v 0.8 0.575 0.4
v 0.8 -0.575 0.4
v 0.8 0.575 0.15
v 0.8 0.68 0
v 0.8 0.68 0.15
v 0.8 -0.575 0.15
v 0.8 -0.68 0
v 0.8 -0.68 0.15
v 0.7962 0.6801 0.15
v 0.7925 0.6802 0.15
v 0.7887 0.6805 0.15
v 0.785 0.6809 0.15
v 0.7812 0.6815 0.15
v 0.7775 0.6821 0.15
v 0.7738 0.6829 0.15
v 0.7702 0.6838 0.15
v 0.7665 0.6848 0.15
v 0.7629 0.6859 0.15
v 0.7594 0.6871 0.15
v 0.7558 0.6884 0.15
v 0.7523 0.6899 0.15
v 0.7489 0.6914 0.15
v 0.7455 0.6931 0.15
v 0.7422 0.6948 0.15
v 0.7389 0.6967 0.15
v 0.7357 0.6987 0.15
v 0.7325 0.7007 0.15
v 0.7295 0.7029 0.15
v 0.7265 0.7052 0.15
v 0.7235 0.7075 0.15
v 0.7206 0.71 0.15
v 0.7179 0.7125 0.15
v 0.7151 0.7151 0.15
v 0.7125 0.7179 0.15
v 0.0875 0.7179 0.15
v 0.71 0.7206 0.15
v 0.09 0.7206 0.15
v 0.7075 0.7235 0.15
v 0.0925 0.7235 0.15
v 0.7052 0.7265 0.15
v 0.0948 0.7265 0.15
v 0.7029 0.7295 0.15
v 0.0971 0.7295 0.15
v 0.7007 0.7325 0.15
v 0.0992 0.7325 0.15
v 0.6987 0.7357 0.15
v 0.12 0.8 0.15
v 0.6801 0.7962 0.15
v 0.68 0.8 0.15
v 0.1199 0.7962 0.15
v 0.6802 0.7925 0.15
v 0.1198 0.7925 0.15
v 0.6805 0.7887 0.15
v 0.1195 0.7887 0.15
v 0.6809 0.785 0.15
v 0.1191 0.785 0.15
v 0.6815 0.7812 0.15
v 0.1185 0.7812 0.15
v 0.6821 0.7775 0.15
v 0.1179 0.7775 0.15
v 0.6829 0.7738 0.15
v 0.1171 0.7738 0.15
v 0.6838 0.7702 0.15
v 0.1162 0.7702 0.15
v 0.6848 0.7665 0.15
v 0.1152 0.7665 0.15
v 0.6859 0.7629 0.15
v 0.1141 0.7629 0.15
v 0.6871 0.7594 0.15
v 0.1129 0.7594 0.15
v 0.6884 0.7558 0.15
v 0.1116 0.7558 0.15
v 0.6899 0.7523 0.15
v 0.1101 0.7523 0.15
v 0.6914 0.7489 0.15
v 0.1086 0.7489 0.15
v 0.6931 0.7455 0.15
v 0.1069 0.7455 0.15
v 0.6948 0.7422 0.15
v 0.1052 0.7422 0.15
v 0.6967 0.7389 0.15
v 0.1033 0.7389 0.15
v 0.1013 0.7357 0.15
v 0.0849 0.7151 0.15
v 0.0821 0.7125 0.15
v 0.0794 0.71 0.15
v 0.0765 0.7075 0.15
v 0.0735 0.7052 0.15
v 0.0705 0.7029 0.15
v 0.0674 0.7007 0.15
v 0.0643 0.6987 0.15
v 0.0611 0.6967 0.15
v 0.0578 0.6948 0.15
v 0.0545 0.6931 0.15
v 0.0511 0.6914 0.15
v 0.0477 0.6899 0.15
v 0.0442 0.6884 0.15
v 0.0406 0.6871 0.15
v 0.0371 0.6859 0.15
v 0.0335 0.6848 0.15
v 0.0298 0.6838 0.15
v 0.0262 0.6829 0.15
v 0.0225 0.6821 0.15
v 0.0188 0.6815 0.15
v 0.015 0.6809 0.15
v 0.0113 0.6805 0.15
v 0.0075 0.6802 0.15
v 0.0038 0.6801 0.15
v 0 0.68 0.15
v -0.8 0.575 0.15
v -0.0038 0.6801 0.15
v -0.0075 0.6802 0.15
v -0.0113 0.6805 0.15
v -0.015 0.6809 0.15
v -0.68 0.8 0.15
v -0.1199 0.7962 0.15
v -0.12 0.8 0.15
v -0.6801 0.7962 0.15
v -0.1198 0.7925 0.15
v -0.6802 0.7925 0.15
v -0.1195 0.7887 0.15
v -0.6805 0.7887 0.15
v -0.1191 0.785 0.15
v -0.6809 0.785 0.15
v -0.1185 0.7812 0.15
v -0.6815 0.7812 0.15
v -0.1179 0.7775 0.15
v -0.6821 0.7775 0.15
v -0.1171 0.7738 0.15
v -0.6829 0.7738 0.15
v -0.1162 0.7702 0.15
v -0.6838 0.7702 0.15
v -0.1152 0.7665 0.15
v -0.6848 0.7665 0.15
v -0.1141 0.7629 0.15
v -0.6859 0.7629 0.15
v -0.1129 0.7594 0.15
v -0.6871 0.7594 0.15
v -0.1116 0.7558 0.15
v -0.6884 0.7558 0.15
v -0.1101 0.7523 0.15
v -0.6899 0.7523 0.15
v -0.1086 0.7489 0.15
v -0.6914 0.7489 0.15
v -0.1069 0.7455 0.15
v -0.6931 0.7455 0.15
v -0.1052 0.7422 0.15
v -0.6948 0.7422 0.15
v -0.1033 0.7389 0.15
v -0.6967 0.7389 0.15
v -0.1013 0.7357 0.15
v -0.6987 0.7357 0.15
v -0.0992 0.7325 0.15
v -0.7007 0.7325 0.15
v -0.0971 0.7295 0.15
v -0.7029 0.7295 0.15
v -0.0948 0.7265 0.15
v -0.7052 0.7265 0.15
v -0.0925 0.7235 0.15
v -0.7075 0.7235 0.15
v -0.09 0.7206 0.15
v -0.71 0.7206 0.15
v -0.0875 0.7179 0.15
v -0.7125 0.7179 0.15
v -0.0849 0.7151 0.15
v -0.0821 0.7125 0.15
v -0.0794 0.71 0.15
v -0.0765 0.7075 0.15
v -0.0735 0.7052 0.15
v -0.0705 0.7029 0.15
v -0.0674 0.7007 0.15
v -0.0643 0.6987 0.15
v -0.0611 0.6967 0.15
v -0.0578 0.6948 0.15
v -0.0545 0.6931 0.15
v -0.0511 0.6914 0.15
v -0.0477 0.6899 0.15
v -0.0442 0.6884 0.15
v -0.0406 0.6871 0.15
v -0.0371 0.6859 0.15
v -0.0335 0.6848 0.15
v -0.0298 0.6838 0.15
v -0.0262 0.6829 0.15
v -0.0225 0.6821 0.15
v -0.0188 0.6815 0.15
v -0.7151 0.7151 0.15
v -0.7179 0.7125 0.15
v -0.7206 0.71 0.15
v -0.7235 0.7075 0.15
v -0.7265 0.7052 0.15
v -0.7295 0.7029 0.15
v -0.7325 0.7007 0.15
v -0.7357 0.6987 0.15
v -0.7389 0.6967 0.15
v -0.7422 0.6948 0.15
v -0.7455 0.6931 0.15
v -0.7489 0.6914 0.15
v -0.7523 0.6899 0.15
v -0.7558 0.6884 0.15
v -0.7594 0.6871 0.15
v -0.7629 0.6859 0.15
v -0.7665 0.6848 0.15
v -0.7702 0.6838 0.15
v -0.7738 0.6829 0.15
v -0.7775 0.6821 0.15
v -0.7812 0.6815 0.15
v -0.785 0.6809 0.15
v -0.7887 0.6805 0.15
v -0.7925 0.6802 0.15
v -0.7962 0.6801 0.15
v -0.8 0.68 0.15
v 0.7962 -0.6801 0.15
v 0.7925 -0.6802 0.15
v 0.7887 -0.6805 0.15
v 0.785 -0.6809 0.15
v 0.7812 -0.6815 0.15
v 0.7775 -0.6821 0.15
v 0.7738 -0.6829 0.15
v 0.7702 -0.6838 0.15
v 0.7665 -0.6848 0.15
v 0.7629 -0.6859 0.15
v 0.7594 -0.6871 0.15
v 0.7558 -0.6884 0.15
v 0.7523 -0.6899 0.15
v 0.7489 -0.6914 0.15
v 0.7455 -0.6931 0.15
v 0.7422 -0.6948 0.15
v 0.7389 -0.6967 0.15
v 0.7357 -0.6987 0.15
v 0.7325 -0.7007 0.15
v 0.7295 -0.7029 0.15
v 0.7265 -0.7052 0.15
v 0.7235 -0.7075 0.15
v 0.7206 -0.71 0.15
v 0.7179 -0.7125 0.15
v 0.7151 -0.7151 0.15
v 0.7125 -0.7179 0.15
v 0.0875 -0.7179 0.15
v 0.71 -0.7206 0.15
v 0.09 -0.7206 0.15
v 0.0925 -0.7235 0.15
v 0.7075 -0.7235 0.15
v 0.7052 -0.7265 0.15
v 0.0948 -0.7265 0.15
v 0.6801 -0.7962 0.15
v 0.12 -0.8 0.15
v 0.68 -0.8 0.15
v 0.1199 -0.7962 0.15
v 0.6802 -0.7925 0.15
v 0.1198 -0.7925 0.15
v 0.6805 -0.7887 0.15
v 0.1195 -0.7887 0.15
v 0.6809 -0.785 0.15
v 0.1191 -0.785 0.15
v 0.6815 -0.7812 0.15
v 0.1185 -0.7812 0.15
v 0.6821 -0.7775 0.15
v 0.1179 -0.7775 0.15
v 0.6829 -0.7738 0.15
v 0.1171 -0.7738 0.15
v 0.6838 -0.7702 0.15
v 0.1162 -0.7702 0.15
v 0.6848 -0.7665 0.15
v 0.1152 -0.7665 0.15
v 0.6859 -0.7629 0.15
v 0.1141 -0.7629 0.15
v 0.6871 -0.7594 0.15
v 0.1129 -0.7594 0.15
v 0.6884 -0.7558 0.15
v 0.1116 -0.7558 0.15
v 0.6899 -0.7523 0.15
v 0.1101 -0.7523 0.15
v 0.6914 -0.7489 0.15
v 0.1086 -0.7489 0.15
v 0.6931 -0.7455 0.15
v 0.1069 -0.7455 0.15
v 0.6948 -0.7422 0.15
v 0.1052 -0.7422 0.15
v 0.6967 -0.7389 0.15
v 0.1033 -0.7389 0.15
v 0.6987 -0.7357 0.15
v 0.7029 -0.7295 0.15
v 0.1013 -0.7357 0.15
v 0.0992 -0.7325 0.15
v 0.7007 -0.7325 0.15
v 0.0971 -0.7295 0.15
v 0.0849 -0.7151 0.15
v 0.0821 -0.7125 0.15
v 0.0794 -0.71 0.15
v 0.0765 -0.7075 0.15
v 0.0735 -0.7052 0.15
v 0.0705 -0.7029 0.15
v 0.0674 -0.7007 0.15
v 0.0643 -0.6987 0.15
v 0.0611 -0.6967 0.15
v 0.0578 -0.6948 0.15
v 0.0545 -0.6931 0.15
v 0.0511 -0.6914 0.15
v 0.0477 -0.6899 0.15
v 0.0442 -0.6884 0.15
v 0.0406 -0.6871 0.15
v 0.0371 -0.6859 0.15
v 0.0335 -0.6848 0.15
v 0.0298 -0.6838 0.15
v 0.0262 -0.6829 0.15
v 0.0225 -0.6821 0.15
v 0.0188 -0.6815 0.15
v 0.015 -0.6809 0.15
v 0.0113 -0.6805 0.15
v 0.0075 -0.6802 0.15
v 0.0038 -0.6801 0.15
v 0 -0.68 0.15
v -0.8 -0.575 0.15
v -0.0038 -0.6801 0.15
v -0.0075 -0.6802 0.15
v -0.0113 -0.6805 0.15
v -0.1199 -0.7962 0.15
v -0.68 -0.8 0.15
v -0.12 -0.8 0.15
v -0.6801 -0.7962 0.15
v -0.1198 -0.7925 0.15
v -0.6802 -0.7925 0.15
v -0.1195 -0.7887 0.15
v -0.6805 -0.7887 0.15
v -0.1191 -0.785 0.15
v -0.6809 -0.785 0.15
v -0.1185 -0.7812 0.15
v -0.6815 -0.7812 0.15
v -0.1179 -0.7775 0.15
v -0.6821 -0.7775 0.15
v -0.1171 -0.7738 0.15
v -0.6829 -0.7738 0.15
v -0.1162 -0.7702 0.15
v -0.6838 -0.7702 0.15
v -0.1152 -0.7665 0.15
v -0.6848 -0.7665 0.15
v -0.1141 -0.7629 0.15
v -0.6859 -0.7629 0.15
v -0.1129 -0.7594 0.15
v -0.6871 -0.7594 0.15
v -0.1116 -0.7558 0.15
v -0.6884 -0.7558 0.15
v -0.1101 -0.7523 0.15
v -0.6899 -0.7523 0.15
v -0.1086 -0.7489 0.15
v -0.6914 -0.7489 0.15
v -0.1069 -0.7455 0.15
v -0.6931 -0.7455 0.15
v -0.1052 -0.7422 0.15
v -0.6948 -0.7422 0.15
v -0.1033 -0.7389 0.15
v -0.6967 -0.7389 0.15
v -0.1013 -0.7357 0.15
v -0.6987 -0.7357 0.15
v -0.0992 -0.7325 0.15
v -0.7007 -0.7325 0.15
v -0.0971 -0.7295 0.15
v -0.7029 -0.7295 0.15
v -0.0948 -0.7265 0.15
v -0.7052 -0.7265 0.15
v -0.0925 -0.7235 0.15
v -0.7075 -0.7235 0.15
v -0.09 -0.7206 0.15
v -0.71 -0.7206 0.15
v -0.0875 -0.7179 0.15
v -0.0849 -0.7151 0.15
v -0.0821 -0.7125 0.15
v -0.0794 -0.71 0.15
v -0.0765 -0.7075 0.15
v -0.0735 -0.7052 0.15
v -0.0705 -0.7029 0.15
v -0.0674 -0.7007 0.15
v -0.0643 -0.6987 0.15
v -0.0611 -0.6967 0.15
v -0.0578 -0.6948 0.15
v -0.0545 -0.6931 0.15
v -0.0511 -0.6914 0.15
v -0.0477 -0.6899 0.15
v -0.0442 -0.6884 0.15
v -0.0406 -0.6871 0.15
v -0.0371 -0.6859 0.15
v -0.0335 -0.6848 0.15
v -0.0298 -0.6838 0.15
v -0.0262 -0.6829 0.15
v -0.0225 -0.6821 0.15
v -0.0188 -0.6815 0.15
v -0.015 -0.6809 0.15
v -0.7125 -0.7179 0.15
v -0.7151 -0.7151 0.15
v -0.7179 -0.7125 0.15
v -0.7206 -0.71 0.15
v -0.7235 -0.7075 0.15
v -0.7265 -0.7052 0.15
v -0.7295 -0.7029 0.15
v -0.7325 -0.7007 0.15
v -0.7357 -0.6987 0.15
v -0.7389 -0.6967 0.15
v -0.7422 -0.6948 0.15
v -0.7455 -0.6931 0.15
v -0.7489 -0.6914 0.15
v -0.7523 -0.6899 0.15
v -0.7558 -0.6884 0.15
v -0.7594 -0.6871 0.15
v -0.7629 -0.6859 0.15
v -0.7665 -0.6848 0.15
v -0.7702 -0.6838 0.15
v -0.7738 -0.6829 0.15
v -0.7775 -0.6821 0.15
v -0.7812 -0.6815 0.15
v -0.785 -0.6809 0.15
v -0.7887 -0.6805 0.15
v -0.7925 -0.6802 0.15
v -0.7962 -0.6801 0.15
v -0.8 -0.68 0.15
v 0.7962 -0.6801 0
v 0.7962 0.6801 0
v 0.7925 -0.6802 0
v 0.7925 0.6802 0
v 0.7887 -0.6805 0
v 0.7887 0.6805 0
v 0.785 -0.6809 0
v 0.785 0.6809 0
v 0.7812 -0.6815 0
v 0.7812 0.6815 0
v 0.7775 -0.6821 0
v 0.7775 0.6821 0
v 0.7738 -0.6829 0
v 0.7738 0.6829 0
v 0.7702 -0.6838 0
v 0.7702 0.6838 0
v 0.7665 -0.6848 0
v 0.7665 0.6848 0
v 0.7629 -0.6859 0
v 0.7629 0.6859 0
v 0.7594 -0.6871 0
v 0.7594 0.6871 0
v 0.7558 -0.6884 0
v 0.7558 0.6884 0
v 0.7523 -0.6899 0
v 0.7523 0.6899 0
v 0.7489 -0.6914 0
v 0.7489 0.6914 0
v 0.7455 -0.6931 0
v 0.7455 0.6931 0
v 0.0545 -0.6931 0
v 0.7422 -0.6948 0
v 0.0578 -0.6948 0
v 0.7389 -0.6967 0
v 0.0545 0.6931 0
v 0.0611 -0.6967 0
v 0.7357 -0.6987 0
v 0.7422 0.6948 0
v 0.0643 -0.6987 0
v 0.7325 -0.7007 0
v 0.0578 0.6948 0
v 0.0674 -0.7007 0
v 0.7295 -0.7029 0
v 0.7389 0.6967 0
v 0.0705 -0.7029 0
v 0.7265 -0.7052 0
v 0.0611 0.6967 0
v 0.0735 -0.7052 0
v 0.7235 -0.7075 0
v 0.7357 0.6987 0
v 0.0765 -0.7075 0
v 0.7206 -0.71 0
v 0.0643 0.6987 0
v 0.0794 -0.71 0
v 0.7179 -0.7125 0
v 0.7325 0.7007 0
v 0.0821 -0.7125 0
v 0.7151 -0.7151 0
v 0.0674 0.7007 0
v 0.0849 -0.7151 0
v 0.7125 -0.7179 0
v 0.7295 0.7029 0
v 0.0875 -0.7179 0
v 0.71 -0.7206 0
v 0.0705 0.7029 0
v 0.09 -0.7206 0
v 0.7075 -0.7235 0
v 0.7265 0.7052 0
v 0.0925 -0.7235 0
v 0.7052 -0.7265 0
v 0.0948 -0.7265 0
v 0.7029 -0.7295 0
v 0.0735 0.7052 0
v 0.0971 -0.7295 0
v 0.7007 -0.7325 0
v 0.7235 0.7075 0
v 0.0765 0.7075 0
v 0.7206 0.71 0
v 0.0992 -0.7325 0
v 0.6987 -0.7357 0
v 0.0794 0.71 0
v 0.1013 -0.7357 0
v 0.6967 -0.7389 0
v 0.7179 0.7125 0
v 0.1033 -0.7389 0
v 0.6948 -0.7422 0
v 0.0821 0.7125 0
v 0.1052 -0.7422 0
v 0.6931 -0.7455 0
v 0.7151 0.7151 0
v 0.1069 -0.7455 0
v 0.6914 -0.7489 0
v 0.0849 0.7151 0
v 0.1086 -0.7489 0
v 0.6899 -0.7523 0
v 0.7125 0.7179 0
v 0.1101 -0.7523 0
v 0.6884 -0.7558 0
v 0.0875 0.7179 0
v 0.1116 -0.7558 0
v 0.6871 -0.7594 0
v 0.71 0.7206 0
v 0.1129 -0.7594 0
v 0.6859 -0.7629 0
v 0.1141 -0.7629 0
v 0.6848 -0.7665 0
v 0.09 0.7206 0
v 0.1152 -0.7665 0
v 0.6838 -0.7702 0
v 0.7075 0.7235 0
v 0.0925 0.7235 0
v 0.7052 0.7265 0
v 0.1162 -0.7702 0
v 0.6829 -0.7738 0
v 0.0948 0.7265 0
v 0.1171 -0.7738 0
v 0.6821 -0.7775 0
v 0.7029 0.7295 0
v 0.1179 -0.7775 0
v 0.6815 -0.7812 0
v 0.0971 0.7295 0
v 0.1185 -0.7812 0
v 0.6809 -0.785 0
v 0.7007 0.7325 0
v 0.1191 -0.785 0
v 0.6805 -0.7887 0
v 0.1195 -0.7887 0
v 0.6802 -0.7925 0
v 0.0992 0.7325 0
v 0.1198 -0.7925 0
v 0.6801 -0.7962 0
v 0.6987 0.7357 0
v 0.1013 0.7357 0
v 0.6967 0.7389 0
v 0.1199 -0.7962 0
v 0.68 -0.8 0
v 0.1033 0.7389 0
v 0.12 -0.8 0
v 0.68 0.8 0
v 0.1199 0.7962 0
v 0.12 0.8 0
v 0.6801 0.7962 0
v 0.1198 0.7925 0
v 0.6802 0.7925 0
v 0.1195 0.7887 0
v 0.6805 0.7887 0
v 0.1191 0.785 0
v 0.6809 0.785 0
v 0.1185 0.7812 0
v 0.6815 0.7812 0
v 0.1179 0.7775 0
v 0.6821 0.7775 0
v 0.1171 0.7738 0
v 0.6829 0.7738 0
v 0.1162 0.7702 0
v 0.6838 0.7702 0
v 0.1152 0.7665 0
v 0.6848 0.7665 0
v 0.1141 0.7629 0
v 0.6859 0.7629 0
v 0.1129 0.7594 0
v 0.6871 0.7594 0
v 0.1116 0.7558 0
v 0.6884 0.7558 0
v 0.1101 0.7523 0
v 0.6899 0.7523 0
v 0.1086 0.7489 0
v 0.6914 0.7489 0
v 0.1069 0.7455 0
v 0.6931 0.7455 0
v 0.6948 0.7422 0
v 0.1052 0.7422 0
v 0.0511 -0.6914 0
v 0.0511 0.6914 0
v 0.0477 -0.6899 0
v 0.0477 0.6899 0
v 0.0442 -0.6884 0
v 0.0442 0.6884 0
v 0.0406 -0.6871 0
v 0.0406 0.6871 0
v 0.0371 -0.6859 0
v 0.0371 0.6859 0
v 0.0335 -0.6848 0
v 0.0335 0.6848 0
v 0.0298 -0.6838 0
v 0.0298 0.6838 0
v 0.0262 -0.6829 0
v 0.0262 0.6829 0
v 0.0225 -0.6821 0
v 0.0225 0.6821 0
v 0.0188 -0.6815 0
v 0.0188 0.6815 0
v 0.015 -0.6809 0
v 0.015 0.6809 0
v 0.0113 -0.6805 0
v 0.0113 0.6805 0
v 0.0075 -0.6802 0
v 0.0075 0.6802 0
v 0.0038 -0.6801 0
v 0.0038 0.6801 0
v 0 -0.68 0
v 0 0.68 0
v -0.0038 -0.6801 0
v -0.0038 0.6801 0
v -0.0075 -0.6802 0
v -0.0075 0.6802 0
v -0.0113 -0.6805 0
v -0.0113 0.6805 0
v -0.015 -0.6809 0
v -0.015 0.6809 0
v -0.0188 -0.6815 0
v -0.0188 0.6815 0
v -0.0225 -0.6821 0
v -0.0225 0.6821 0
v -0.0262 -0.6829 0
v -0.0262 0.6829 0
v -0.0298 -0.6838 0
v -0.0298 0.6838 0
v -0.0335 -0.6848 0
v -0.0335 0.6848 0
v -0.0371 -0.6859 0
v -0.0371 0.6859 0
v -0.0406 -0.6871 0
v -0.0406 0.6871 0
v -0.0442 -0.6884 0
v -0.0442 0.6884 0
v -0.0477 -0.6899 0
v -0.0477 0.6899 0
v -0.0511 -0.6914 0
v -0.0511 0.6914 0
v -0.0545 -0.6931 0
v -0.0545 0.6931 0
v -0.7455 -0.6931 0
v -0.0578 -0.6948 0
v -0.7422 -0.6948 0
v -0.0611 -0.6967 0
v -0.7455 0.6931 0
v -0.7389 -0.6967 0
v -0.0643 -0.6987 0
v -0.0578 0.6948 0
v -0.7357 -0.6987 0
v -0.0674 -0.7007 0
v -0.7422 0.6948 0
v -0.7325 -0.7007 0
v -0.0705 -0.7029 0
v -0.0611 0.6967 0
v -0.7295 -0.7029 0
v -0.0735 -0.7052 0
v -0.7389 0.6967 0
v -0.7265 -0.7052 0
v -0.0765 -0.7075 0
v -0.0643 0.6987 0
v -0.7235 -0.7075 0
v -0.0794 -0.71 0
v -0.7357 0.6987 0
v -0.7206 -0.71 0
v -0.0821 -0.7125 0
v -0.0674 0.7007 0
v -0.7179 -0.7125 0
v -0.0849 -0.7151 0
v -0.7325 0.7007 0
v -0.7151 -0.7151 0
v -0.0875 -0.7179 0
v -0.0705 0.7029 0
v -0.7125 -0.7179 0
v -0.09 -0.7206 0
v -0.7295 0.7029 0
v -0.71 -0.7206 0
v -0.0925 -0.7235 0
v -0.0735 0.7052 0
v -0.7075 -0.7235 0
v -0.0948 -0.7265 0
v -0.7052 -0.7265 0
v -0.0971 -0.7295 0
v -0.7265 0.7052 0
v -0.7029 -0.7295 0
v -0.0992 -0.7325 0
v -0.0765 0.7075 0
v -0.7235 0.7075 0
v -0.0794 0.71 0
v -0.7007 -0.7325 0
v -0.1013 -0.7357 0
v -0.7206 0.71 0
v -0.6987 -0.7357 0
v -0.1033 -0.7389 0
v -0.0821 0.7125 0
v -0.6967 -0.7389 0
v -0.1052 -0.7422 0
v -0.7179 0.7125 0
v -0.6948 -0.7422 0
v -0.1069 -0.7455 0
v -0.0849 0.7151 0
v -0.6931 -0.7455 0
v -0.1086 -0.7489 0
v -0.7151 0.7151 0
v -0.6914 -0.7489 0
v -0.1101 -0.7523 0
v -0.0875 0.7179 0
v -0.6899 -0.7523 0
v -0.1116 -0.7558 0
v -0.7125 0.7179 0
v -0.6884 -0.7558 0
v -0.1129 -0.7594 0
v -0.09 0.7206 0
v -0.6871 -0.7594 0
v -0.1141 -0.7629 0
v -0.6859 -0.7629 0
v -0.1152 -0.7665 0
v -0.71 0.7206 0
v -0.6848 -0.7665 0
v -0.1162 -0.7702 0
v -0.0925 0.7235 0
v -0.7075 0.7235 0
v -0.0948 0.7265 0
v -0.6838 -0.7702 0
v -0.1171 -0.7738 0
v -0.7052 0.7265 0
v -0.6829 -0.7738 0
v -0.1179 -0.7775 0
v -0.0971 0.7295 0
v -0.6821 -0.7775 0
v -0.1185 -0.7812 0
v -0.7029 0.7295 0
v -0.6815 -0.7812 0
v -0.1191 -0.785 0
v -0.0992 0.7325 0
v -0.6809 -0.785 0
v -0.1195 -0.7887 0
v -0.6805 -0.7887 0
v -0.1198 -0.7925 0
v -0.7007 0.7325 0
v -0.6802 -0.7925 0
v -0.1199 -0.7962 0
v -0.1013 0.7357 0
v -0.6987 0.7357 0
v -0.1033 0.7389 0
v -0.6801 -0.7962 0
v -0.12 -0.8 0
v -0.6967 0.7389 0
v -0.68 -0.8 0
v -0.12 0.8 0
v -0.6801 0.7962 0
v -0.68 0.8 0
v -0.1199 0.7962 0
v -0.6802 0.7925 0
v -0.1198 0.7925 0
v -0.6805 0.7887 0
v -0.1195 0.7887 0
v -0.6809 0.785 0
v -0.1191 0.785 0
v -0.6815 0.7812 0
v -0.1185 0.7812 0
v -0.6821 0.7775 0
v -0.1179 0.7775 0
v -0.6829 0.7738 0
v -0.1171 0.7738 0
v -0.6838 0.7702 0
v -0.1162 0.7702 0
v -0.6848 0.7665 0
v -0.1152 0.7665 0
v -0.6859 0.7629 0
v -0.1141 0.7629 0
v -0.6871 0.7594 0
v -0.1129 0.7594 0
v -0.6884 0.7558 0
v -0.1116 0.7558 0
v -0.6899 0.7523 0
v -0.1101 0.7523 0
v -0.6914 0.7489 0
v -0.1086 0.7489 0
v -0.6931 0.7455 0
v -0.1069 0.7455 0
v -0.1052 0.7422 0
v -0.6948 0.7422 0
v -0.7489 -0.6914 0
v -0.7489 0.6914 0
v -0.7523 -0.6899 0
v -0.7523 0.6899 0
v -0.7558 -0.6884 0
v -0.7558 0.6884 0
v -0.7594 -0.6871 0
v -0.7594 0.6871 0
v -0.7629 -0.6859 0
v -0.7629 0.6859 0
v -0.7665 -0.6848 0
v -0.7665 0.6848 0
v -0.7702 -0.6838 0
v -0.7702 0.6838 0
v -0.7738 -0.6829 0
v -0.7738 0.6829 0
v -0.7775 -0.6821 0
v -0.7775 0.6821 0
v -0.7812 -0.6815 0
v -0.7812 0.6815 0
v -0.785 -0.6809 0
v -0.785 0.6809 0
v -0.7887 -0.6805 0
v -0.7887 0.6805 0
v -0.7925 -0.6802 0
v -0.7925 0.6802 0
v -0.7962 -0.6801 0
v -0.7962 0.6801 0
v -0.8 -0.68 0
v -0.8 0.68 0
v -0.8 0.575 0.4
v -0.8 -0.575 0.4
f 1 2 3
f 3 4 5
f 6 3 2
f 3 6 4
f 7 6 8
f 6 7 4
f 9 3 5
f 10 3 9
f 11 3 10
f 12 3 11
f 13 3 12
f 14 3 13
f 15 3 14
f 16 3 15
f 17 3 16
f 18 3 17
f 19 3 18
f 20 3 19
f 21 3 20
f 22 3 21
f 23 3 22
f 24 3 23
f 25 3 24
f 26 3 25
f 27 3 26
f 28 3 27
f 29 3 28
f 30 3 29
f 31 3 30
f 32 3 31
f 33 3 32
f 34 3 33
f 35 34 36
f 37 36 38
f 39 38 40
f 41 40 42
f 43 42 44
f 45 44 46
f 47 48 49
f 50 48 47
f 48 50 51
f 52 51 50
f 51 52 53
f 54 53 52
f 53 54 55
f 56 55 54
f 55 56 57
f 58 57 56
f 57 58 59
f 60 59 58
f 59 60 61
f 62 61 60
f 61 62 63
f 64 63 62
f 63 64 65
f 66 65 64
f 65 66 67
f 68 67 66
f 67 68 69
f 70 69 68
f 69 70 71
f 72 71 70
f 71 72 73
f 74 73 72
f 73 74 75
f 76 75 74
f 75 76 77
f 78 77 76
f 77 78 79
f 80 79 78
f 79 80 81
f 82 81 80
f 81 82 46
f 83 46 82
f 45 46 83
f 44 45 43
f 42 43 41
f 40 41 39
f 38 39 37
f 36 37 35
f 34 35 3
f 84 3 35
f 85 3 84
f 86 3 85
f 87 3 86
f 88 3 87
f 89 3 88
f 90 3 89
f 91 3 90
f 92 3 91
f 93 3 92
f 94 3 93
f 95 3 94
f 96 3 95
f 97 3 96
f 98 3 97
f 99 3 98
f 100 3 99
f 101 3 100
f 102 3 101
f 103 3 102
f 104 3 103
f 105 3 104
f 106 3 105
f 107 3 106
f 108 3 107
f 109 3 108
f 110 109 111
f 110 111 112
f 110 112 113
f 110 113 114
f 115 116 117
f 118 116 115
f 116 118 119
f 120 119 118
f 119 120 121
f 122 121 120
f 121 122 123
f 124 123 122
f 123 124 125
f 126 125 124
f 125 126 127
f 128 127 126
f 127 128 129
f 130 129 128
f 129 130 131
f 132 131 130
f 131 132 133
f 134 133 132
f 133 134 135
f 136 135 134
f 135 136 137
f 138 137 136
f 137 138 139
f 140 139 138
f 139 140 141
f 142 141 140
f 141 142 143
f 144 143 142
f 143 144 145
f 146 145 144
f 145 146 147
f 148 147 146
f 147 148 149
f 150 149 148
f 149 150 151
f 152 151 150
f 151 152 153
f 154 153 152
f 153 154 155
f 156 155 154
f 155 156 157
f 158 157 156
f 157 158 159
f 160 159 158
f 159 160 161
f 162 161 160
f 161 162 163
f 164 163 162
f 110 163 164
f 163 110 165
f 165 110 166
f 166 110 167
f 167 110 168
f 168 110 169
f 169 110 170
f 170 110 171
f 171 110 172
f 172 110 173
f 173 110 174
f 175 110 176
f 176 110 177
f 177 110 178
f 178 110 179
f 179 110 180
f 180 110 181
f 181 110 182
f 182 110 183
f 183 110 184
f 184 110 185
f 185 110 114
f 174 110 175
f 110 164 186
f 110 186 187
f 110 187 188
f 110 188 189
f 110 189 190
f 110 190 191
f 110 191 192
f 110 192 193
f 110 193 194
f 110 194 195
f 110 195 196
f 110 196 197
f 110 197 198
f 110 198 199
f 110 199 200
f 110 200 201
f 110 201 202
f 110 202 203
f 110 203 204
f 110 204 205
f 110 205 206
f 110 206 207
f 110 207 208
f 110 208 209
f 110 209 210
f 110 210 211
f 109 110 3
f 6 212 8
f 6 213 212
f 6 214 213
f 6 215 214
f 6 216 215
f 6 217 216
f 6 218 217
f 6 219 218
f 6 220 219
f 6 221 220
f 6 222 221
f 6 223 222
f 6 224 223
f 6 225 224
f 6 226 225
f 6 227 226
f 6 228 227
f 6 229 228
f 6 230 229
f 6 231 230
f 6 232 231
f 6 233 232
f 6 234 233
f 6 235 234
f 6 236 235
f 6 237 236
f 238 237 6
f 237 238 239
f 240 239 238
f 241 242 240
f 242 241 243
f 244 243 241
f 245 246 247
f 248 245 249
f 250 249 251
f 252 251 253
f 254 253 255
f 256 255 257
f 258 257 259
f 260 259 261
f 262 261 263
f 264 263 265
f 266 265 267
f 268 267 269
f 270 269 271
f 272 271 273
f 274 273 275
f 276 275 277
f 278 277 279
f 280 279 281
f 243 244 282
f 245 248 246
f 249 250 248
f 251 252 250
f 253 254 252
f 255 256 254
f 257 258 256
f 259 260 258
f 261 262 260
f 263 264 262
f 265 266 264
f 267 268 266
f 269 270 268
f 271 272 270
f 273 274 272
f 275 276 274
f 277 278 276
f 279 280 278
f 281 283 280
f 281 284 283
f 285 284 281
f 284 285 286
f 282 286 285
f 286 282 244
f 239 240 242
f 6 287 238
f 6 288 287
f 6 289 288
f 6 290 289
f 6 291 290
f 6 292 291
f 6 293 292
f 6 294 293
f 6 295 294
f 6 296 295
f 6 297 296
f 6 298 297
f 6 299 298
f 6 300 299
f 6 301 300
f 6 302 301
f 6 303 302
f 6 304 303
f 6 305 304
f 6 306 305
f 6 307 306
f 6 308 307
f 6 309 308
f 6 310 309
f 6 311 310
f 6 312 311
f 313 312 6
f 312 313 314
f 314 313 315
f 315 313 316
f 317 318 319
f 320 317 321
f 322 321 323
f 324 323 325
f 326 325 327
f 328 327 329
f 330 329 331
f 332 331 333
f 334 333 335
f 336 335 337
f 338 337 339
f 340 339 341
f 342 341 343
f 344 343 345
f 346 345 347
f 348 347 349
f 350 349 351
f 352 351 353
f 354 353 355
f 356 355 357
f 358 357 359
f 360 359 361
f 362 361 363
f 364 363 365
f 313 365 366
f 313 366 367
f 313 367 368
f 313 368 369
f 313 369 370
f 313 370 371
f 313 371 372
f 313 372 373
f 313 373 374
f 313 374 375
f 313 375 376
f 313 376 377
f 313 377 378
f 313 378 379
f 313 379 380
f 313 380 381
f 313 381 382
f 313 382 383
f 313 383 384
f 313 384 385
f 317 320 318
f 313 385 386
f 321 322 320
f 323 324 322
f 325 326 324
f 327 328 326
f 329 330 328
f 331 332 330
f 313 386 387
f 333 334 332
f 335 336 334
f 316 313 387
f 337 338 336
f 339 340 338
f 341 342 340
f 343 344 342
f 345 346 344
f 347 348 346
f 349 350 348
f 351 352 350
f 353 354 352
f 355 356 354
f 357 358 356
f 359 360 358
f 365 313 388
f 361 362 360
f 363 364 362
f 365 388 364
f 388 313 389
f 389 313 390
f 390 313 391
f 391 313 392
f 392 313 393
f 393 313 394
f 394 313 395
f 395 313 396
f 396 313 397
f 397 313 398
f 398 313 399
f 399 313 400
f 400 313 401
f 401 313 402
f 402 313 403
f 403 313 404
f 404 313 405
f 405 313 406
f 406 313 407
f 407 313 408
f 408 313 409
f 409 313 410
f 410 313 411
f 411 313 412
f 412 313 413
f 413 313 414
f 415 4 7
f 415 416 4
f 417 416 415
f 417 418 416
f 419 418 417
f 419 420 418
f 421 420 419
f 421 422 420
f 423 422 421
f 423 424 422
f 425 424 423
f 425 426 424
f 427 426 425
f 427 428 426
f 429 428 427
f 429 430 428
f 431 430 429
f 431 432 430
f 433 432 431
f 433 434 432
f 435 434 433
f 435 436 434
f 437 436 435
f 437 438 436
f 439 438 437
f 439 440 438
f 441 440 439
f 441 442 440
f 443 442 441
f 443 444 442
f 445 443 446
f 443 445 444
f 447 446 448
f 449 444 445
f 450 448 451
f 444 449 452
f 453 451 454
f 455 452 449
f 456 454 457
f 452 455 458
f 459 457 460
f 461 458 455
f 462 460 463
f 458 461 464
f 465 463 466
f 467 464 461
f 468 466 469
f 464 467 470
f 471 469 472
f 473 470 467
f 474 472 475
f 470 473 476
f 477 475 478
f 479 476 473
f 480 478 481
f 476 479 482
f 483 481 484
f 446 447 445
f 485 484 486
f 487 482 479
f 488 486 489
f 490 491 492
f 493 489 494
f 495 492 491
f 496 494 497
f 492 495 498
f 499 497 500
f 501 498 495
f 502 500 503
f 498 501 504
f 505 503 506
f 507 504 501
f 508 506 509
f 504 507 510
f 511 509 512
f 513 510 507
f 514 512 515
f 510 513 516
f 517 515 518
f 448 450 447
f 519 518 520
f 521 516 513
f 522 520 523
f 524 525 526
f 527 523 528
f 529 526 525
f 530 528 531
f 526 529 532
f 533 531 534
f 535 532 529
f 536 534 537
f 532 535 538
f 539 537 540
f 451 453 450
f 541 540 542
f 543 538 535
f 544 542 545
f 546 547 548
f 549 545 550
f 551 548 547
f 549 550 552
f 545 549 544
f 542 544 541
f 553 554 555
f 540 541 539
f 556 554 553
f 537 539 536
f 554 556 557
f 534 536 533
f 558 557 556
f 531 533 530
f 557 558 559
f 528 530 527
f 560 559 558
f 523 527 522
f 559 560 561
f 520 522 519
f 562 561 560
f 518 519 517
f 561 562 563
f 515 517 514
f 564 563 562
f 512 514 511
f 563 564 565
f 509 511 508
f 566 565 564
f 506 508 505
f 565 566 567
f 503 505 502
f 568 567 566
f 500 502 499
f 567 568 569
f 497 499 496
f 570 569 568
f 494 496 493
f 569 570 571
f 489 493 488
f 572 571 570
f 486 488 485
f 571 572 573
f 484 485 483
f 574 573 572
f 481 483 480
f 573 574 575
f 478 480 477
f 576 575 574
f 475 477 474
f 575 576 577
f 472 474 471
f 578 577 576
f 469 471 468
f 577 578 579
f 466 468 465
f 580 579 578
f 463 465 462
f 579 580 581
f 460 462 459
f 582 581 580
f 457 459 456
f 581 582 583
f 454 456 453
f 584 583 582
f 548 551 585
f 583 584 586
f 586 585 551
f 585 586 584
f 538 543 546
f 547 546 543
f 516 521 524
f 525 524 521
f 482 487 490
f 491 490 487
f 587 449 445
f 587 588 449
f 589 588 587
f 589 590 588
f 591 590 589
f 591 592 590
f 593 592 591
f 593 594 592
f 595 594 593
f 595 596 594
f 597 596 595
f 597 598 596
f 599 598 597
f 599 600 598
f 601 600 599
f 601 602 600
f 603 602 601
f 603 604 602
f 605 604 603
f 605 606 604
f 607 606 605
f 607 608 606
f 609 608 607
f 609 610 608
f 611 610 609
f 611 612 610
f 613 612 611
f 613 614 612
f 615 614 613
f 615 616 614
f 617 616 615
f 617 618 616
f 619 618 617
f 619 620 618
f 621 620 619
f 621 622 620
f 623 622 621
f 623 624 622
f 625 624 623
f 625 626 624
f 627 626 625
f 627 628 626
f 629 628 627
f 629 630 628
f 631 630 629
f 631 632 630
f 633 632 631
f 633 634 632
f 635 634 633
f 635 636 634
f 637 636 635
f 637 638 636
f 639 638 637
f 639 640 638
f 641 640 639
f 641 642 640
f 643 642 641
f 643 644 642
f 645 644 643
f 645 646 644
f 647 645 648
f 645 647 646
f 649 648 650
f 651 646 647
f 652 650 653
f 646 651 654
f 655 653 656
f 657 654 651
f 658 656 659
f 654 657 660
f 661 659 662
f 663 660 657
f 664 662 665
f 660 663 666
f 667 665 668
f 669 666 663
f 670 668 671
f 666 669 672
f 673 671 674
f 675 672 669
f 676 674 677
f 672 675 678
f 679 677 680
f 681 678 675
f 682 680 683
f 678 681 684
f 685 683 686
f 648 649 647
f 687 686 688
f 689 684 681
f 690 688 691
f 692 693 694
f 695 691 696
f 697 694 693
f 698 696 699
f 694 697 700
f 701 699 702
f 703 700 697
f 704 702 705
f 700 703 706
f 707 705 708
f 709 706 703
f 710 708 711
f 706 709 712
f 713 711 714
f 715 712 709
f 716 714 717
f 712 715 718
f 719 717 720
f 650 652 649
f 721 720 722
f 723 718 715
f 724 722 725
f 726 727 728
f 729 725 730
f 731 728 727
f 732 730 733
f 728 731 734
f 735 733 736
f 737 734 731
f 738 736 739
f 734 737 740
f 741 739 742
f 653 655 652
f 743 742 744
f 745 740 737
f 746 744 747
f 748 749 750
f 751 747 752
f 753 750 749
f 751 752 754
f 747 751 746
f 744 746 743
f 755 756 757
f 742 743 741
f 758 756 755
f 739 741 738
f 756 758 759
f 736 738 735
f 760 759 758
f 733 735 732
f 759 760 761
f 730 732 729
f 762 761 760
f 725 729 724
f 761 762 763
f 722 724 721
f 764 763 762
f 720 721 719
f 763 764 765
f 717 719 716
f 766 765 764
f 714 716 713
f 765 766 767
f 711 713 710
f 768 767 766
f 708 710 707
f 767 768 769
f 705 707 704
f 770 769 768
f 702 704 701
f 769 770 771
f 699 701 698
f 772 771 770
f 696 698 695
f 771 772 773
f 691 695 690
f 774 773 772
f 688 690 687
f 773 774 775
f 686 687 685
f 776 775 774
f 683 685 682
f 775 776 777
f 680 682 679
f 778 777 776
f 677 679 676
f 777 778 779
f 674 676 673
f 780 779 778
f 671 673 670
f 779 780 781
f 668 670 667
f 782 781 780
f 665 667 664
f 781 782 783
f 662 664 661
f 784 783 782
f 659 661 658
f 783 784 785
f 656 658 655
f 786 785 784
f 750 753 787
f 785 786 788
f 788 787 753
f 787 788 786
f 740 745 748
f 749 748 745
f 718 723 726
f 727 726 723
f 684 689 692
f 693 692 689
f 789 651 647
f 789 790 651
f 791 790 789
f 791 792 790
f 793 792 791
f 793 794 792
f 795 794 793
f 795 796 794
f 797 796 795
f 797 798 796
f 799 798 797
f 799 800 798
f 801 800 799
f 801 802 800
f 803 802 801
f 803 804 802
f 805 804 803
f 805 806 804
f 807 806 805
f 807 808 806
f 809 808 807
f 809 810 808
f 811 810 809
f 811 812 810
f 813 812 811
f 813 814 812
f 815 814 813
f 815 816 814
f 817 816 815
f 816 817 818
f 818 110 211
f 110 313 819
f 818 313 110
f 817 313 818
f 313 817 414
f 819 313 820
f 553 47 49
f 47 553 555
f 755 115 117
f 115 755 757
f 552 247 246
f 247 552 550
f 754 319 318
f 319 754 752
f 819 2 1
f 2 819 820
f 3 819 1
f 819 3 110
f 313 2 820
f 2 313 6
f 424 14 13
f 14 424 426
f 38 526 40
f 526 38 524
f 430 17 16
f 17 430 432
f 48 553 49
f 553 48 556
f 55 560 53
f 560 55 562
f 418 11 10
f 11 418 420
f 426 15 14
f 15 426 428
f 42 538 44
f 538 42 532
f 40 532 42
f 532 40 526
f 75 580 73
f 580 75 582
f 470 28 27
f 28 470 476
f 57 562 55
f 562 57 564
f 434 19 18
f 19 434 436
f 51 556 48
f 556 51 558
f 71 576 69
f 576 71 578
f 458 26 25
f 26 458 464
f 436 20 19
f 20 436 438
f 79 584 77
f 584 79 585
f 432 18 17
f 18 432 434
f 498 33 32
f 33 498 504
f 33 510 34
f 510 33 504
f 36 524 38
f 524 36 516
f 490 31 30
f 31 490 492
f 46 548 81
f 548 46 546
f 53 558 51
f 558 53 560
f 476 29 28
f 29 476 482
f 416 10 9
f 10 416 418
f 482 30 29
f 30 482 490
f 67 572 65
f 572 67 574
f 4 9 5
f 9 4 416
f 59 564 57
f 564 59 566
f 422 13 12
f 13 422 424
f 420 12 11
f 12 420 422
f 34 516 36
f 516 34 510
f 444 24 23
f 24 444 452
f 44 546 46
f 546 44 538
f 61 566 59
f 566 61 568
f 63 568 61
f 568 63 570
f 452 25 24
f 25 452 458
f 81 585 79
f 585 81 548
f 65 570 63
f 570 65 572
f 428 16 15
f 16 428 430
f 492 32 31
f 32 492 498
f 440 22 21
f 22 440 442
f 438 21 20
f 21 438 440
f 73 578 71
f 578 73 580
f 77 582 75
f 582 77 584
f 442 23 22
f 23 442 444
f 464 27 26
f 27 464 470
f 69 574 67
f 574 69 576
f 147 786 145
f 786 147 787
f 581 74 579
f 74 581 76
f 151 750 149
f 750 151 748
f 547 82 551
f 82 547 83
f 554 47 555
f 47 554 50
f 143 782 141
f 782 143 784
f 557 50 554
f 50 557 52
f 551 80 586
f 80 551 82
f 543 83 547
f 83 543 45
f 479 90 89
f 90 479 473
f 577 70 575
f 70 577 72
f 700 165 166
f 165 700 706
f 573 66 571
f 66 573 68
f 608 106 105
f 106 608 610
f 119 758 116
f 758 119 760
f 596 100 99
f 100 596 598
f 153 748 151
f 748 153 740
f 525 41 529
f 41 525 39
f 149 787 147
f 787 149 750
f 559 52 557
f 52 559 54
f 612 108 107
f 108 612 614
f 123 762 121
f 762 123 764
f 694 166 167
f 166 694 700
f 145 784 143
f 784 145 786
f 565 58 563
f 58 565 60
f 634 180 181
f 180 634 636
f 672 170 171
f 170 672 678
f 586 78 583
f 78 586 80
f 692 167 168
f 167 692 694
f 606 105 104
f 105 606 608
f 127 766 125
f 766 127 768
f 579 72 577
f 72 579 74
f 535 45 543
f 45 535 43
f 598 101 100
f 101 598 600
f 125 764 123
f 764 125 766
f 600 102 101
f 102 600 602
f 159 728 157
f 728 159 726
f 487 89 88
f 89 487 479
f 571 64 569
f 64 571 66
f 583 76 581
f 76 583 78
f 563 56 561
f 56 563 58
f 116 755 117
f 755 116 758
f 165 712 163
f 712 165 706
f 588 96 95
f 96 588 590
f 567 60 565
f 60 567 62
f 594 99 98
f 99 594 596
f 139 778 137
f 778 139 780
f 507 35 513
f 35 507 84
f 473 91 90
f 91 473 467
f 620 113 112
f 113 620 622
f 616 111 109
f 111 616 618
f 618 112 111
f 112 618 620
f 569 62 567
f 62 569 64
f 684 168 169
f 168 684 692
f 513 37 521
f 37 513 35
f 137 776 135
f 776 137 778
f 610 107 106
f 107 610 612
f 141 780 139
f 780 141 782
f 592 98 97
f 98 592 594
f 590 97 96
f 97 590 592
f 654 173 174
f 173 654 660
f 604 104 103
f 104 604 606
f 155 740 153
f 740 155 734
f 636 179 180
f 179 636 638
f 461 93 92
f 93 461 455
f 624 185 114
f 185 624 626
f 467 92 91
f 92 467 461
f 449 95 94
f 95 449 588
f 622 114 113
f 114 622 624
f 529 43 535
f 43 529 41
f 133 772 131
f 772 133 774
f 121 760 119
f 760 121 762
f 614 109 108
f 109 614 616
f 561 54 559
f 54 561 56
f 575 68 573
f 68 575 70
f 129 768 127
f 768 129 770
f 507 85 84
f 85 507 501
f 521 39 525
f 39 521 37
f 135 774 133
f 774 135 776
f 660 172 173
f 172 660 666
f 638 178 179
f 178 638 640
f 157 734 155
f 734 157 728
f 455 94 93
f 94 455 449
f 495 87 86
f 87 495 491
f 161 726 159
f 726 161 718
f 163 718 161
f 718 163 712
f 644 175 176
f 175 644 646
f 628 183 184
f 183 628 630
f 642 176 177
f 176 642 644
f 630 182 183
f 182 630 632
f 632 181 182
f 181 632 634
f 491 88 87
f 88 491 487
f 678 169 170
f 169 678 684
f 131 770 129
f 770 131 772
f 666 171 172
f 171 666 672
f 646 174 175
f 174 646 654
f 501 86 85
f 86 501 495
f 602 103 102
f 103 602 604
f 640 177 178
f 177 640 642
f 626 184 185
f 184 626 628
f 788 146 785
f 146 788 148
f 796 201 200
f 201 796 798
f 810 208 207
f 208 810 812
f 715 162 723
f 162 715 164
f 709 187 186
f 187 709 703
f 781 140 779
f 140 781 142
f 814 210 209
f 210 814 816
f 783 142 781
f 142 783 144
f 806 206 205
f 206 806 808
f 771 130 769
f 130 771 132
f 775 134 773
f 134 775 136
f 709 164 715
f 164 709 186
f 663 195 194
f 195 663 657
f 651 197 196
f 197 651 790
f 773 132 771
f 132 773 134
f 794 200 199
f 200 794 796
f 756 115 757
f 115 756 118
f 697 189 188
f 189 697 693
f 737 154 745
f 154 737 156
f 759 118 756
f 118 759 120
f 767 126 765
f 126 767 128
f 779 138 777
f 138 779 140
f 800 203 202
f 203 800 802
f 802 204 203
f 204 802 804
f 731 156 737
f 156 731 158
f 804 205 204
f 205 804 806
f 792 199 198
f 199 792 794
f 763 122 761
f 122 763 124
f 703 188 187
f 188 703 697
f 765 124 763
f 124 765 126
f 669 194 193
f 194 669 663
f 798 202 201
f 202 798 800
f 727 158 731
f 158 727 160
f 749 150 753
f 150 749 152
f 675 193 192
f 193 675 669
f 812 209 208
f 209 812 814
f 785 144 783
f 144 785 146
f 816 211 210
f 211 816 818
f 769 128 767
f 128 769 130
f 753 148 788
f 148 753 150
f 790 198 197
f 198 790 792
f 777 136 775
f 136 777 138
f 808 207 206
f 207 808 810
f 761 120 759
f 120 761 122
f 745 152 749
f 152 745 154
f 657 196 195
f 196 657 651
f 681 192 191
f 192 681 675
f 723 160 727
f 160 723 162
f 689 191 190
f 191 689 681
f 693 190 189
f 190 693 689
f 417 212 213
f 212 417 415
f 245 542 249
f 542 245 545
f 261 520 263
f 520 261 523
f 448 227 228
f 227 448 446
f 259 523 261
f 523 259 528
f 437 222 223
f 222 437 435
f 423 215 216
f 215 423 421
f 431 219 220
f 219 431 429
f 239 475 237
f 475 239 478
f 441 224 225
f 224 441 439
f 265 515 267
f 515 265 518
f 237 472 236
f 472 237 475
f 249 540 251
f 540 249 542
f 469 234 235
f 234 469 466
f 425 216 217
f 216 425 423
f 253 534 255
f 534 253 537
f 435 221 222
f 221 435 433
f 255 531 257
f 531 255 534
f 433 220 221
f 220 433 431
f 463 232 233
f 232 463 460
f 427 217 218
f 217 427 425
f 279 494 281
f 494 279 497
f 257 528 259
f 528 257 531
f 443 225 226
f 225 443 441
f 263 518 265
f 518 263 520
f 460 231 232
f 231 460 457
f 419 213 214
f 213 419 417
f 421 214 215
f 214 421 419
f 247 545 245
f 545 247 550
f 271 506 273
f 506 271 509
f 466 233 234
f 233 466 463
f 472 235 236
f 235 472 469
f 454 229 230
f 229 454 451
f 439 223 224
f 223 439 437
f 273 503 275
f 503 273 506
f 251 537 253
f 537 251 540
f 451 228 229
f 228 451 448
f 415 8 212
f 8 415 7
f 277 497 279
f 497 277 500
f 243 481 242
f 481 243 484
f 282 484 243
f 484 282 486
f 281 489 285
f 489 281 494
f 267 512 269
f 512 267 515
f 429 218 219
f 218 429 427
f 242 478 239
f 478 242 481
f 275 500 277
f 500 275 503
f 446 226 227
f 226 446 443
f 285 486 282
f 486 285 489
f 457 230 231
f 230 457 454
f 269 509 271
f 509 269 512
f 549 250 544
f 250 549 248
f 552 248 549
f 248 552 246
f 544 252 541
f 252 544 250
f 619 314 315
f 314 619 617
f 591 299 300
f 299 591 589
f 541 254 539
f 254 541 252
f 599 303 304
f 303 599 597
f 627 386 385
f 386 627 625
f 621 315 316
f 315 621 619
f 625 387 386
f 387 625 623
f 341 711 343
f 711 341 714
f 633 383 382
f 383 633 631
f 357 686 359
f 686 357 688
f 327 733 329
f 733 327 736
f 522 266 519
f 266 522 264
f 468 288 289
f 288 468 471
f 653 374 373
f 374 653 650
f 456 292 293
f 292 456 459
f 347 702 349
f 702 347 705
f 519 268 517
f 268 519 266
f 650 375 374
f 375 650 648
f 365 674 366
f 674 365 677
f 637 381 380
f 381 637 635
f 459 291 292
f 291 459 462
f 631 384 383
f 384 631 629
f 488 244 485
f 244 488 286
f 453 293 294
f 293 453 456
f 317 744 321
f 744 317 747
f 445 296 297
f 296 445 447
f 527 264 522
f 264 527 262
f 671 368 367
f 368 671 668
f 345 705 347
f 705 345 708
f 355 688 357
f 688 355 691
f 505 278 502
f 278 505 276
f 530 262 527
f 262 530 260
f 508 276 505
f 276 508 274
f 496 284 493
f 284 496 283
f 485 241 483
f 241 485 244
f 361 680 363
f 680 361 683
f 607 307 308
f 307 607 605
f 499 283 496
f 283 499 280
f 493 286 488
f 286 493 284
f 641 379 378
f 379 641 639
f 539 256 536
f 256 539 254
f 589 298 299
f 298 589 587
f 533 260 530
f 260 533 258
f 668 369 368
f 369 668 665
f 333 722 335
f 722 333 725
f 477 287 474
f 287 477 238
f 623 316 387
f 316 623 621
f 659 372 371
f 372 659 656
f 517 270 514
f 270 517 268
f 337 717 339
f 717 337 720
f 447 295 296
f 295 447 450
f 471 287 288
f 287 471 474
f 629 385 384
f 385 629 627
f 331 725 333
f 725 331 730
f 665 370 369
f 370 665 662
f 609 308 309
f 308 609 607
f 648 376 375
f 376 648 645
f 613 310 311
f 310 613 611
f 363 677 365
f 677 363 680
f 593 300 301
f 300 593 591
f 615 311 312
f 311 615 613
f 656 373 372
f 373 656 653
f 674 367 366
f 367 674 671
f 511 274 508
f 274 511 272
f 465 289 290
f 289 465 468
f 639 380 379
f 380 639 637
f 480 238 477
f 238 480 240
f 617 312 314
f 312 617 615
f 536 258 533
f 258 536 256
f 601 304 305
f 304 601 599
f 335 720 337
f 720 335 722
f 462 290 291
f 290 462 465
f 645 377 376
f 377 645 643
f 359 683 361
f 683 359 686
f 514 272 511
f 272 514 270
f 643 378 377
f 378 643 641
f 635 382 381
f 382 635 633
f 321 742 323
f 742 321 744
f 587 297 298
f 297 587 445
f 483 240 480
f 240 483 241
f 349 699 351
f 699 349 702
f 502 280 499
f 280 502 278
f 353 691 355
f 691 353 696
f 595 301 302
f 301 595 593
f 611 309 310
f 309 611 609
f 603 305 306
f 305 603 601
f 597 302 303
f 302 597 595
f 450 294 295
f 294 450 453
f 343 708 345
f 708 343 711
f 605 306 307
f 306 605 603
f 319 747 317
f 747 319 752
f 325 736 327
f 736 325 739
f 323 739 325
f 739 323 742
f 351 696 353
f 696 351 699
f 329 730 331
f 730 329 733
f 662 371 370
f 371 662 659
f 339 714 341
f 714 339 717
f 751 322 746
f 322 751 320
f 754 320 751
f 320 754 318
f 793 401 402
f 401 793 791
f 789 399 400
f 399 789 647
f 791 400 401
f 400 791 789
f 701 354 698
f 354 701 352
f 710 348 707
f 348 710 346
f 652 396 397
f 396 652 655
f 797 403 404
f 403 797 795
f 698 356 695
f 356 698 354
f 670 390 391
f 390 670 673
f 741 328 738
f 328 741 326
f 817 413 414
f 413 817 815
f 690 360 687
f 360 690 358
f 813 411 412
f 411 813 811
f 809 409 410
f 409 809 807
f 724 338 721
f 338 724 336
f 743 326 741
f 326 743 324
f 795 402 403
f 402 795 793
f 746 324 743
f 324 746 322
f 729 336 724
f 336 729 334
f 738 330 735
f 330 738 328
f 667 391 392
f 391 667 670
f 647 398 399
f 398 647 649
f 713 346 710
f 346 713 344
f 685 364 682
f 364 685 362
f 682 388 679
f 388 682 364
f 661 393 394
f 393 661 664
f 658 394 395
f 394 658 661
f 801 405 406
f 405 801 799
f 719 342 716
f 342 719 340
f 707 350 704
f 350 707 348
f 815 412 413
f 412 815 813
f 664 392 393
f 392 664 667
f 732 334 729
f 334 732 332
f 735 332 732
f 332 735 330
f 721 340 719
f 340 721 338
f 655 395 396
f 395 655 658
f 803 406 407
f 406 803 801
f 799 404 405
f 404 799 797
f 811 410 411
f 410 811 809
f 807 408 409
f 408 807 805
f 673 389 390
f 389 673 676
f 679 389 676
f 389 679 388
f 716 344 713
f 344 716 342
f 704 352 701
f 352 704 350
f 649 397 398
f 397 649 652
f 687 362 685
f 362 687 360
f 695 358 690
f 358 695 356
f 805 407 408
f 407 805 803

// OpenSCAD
// intersection.scad - Example for intersection() usage in OpenSCAD
$fn=200;

module led()
{
    difference() {
        union() {
		    translate([0,0,0.075]) color([1,1,1]) cube([1.6, 1.6, 0.15], center = true);
			translate([0,0,0.2]) color([0.8,0.8,0.8]) cube([1.6, 1.15, 0.4], center = true);
		}
        translate([0.8,0.8,0]) cylinder(h = 2, r =0.12, center = true);
        translate([0.0,0.8,0]) cylinder(h = 2, r =0.12, center = true);
        translate([-0.8,0.8,0]) cylinder(h = 2, r =0.12, center = true);
        translate([0.8,-0.8,0]) cylinder(h = 2, r =0.12, center = true);
        translate([0.0,-0.8,0]) cylinder(h = 2, r =0.12, center = true);
        translate([-0.8,-0.8,0]) cylinder(h = 2, r =0.12, center = true);
    }
}

led();
